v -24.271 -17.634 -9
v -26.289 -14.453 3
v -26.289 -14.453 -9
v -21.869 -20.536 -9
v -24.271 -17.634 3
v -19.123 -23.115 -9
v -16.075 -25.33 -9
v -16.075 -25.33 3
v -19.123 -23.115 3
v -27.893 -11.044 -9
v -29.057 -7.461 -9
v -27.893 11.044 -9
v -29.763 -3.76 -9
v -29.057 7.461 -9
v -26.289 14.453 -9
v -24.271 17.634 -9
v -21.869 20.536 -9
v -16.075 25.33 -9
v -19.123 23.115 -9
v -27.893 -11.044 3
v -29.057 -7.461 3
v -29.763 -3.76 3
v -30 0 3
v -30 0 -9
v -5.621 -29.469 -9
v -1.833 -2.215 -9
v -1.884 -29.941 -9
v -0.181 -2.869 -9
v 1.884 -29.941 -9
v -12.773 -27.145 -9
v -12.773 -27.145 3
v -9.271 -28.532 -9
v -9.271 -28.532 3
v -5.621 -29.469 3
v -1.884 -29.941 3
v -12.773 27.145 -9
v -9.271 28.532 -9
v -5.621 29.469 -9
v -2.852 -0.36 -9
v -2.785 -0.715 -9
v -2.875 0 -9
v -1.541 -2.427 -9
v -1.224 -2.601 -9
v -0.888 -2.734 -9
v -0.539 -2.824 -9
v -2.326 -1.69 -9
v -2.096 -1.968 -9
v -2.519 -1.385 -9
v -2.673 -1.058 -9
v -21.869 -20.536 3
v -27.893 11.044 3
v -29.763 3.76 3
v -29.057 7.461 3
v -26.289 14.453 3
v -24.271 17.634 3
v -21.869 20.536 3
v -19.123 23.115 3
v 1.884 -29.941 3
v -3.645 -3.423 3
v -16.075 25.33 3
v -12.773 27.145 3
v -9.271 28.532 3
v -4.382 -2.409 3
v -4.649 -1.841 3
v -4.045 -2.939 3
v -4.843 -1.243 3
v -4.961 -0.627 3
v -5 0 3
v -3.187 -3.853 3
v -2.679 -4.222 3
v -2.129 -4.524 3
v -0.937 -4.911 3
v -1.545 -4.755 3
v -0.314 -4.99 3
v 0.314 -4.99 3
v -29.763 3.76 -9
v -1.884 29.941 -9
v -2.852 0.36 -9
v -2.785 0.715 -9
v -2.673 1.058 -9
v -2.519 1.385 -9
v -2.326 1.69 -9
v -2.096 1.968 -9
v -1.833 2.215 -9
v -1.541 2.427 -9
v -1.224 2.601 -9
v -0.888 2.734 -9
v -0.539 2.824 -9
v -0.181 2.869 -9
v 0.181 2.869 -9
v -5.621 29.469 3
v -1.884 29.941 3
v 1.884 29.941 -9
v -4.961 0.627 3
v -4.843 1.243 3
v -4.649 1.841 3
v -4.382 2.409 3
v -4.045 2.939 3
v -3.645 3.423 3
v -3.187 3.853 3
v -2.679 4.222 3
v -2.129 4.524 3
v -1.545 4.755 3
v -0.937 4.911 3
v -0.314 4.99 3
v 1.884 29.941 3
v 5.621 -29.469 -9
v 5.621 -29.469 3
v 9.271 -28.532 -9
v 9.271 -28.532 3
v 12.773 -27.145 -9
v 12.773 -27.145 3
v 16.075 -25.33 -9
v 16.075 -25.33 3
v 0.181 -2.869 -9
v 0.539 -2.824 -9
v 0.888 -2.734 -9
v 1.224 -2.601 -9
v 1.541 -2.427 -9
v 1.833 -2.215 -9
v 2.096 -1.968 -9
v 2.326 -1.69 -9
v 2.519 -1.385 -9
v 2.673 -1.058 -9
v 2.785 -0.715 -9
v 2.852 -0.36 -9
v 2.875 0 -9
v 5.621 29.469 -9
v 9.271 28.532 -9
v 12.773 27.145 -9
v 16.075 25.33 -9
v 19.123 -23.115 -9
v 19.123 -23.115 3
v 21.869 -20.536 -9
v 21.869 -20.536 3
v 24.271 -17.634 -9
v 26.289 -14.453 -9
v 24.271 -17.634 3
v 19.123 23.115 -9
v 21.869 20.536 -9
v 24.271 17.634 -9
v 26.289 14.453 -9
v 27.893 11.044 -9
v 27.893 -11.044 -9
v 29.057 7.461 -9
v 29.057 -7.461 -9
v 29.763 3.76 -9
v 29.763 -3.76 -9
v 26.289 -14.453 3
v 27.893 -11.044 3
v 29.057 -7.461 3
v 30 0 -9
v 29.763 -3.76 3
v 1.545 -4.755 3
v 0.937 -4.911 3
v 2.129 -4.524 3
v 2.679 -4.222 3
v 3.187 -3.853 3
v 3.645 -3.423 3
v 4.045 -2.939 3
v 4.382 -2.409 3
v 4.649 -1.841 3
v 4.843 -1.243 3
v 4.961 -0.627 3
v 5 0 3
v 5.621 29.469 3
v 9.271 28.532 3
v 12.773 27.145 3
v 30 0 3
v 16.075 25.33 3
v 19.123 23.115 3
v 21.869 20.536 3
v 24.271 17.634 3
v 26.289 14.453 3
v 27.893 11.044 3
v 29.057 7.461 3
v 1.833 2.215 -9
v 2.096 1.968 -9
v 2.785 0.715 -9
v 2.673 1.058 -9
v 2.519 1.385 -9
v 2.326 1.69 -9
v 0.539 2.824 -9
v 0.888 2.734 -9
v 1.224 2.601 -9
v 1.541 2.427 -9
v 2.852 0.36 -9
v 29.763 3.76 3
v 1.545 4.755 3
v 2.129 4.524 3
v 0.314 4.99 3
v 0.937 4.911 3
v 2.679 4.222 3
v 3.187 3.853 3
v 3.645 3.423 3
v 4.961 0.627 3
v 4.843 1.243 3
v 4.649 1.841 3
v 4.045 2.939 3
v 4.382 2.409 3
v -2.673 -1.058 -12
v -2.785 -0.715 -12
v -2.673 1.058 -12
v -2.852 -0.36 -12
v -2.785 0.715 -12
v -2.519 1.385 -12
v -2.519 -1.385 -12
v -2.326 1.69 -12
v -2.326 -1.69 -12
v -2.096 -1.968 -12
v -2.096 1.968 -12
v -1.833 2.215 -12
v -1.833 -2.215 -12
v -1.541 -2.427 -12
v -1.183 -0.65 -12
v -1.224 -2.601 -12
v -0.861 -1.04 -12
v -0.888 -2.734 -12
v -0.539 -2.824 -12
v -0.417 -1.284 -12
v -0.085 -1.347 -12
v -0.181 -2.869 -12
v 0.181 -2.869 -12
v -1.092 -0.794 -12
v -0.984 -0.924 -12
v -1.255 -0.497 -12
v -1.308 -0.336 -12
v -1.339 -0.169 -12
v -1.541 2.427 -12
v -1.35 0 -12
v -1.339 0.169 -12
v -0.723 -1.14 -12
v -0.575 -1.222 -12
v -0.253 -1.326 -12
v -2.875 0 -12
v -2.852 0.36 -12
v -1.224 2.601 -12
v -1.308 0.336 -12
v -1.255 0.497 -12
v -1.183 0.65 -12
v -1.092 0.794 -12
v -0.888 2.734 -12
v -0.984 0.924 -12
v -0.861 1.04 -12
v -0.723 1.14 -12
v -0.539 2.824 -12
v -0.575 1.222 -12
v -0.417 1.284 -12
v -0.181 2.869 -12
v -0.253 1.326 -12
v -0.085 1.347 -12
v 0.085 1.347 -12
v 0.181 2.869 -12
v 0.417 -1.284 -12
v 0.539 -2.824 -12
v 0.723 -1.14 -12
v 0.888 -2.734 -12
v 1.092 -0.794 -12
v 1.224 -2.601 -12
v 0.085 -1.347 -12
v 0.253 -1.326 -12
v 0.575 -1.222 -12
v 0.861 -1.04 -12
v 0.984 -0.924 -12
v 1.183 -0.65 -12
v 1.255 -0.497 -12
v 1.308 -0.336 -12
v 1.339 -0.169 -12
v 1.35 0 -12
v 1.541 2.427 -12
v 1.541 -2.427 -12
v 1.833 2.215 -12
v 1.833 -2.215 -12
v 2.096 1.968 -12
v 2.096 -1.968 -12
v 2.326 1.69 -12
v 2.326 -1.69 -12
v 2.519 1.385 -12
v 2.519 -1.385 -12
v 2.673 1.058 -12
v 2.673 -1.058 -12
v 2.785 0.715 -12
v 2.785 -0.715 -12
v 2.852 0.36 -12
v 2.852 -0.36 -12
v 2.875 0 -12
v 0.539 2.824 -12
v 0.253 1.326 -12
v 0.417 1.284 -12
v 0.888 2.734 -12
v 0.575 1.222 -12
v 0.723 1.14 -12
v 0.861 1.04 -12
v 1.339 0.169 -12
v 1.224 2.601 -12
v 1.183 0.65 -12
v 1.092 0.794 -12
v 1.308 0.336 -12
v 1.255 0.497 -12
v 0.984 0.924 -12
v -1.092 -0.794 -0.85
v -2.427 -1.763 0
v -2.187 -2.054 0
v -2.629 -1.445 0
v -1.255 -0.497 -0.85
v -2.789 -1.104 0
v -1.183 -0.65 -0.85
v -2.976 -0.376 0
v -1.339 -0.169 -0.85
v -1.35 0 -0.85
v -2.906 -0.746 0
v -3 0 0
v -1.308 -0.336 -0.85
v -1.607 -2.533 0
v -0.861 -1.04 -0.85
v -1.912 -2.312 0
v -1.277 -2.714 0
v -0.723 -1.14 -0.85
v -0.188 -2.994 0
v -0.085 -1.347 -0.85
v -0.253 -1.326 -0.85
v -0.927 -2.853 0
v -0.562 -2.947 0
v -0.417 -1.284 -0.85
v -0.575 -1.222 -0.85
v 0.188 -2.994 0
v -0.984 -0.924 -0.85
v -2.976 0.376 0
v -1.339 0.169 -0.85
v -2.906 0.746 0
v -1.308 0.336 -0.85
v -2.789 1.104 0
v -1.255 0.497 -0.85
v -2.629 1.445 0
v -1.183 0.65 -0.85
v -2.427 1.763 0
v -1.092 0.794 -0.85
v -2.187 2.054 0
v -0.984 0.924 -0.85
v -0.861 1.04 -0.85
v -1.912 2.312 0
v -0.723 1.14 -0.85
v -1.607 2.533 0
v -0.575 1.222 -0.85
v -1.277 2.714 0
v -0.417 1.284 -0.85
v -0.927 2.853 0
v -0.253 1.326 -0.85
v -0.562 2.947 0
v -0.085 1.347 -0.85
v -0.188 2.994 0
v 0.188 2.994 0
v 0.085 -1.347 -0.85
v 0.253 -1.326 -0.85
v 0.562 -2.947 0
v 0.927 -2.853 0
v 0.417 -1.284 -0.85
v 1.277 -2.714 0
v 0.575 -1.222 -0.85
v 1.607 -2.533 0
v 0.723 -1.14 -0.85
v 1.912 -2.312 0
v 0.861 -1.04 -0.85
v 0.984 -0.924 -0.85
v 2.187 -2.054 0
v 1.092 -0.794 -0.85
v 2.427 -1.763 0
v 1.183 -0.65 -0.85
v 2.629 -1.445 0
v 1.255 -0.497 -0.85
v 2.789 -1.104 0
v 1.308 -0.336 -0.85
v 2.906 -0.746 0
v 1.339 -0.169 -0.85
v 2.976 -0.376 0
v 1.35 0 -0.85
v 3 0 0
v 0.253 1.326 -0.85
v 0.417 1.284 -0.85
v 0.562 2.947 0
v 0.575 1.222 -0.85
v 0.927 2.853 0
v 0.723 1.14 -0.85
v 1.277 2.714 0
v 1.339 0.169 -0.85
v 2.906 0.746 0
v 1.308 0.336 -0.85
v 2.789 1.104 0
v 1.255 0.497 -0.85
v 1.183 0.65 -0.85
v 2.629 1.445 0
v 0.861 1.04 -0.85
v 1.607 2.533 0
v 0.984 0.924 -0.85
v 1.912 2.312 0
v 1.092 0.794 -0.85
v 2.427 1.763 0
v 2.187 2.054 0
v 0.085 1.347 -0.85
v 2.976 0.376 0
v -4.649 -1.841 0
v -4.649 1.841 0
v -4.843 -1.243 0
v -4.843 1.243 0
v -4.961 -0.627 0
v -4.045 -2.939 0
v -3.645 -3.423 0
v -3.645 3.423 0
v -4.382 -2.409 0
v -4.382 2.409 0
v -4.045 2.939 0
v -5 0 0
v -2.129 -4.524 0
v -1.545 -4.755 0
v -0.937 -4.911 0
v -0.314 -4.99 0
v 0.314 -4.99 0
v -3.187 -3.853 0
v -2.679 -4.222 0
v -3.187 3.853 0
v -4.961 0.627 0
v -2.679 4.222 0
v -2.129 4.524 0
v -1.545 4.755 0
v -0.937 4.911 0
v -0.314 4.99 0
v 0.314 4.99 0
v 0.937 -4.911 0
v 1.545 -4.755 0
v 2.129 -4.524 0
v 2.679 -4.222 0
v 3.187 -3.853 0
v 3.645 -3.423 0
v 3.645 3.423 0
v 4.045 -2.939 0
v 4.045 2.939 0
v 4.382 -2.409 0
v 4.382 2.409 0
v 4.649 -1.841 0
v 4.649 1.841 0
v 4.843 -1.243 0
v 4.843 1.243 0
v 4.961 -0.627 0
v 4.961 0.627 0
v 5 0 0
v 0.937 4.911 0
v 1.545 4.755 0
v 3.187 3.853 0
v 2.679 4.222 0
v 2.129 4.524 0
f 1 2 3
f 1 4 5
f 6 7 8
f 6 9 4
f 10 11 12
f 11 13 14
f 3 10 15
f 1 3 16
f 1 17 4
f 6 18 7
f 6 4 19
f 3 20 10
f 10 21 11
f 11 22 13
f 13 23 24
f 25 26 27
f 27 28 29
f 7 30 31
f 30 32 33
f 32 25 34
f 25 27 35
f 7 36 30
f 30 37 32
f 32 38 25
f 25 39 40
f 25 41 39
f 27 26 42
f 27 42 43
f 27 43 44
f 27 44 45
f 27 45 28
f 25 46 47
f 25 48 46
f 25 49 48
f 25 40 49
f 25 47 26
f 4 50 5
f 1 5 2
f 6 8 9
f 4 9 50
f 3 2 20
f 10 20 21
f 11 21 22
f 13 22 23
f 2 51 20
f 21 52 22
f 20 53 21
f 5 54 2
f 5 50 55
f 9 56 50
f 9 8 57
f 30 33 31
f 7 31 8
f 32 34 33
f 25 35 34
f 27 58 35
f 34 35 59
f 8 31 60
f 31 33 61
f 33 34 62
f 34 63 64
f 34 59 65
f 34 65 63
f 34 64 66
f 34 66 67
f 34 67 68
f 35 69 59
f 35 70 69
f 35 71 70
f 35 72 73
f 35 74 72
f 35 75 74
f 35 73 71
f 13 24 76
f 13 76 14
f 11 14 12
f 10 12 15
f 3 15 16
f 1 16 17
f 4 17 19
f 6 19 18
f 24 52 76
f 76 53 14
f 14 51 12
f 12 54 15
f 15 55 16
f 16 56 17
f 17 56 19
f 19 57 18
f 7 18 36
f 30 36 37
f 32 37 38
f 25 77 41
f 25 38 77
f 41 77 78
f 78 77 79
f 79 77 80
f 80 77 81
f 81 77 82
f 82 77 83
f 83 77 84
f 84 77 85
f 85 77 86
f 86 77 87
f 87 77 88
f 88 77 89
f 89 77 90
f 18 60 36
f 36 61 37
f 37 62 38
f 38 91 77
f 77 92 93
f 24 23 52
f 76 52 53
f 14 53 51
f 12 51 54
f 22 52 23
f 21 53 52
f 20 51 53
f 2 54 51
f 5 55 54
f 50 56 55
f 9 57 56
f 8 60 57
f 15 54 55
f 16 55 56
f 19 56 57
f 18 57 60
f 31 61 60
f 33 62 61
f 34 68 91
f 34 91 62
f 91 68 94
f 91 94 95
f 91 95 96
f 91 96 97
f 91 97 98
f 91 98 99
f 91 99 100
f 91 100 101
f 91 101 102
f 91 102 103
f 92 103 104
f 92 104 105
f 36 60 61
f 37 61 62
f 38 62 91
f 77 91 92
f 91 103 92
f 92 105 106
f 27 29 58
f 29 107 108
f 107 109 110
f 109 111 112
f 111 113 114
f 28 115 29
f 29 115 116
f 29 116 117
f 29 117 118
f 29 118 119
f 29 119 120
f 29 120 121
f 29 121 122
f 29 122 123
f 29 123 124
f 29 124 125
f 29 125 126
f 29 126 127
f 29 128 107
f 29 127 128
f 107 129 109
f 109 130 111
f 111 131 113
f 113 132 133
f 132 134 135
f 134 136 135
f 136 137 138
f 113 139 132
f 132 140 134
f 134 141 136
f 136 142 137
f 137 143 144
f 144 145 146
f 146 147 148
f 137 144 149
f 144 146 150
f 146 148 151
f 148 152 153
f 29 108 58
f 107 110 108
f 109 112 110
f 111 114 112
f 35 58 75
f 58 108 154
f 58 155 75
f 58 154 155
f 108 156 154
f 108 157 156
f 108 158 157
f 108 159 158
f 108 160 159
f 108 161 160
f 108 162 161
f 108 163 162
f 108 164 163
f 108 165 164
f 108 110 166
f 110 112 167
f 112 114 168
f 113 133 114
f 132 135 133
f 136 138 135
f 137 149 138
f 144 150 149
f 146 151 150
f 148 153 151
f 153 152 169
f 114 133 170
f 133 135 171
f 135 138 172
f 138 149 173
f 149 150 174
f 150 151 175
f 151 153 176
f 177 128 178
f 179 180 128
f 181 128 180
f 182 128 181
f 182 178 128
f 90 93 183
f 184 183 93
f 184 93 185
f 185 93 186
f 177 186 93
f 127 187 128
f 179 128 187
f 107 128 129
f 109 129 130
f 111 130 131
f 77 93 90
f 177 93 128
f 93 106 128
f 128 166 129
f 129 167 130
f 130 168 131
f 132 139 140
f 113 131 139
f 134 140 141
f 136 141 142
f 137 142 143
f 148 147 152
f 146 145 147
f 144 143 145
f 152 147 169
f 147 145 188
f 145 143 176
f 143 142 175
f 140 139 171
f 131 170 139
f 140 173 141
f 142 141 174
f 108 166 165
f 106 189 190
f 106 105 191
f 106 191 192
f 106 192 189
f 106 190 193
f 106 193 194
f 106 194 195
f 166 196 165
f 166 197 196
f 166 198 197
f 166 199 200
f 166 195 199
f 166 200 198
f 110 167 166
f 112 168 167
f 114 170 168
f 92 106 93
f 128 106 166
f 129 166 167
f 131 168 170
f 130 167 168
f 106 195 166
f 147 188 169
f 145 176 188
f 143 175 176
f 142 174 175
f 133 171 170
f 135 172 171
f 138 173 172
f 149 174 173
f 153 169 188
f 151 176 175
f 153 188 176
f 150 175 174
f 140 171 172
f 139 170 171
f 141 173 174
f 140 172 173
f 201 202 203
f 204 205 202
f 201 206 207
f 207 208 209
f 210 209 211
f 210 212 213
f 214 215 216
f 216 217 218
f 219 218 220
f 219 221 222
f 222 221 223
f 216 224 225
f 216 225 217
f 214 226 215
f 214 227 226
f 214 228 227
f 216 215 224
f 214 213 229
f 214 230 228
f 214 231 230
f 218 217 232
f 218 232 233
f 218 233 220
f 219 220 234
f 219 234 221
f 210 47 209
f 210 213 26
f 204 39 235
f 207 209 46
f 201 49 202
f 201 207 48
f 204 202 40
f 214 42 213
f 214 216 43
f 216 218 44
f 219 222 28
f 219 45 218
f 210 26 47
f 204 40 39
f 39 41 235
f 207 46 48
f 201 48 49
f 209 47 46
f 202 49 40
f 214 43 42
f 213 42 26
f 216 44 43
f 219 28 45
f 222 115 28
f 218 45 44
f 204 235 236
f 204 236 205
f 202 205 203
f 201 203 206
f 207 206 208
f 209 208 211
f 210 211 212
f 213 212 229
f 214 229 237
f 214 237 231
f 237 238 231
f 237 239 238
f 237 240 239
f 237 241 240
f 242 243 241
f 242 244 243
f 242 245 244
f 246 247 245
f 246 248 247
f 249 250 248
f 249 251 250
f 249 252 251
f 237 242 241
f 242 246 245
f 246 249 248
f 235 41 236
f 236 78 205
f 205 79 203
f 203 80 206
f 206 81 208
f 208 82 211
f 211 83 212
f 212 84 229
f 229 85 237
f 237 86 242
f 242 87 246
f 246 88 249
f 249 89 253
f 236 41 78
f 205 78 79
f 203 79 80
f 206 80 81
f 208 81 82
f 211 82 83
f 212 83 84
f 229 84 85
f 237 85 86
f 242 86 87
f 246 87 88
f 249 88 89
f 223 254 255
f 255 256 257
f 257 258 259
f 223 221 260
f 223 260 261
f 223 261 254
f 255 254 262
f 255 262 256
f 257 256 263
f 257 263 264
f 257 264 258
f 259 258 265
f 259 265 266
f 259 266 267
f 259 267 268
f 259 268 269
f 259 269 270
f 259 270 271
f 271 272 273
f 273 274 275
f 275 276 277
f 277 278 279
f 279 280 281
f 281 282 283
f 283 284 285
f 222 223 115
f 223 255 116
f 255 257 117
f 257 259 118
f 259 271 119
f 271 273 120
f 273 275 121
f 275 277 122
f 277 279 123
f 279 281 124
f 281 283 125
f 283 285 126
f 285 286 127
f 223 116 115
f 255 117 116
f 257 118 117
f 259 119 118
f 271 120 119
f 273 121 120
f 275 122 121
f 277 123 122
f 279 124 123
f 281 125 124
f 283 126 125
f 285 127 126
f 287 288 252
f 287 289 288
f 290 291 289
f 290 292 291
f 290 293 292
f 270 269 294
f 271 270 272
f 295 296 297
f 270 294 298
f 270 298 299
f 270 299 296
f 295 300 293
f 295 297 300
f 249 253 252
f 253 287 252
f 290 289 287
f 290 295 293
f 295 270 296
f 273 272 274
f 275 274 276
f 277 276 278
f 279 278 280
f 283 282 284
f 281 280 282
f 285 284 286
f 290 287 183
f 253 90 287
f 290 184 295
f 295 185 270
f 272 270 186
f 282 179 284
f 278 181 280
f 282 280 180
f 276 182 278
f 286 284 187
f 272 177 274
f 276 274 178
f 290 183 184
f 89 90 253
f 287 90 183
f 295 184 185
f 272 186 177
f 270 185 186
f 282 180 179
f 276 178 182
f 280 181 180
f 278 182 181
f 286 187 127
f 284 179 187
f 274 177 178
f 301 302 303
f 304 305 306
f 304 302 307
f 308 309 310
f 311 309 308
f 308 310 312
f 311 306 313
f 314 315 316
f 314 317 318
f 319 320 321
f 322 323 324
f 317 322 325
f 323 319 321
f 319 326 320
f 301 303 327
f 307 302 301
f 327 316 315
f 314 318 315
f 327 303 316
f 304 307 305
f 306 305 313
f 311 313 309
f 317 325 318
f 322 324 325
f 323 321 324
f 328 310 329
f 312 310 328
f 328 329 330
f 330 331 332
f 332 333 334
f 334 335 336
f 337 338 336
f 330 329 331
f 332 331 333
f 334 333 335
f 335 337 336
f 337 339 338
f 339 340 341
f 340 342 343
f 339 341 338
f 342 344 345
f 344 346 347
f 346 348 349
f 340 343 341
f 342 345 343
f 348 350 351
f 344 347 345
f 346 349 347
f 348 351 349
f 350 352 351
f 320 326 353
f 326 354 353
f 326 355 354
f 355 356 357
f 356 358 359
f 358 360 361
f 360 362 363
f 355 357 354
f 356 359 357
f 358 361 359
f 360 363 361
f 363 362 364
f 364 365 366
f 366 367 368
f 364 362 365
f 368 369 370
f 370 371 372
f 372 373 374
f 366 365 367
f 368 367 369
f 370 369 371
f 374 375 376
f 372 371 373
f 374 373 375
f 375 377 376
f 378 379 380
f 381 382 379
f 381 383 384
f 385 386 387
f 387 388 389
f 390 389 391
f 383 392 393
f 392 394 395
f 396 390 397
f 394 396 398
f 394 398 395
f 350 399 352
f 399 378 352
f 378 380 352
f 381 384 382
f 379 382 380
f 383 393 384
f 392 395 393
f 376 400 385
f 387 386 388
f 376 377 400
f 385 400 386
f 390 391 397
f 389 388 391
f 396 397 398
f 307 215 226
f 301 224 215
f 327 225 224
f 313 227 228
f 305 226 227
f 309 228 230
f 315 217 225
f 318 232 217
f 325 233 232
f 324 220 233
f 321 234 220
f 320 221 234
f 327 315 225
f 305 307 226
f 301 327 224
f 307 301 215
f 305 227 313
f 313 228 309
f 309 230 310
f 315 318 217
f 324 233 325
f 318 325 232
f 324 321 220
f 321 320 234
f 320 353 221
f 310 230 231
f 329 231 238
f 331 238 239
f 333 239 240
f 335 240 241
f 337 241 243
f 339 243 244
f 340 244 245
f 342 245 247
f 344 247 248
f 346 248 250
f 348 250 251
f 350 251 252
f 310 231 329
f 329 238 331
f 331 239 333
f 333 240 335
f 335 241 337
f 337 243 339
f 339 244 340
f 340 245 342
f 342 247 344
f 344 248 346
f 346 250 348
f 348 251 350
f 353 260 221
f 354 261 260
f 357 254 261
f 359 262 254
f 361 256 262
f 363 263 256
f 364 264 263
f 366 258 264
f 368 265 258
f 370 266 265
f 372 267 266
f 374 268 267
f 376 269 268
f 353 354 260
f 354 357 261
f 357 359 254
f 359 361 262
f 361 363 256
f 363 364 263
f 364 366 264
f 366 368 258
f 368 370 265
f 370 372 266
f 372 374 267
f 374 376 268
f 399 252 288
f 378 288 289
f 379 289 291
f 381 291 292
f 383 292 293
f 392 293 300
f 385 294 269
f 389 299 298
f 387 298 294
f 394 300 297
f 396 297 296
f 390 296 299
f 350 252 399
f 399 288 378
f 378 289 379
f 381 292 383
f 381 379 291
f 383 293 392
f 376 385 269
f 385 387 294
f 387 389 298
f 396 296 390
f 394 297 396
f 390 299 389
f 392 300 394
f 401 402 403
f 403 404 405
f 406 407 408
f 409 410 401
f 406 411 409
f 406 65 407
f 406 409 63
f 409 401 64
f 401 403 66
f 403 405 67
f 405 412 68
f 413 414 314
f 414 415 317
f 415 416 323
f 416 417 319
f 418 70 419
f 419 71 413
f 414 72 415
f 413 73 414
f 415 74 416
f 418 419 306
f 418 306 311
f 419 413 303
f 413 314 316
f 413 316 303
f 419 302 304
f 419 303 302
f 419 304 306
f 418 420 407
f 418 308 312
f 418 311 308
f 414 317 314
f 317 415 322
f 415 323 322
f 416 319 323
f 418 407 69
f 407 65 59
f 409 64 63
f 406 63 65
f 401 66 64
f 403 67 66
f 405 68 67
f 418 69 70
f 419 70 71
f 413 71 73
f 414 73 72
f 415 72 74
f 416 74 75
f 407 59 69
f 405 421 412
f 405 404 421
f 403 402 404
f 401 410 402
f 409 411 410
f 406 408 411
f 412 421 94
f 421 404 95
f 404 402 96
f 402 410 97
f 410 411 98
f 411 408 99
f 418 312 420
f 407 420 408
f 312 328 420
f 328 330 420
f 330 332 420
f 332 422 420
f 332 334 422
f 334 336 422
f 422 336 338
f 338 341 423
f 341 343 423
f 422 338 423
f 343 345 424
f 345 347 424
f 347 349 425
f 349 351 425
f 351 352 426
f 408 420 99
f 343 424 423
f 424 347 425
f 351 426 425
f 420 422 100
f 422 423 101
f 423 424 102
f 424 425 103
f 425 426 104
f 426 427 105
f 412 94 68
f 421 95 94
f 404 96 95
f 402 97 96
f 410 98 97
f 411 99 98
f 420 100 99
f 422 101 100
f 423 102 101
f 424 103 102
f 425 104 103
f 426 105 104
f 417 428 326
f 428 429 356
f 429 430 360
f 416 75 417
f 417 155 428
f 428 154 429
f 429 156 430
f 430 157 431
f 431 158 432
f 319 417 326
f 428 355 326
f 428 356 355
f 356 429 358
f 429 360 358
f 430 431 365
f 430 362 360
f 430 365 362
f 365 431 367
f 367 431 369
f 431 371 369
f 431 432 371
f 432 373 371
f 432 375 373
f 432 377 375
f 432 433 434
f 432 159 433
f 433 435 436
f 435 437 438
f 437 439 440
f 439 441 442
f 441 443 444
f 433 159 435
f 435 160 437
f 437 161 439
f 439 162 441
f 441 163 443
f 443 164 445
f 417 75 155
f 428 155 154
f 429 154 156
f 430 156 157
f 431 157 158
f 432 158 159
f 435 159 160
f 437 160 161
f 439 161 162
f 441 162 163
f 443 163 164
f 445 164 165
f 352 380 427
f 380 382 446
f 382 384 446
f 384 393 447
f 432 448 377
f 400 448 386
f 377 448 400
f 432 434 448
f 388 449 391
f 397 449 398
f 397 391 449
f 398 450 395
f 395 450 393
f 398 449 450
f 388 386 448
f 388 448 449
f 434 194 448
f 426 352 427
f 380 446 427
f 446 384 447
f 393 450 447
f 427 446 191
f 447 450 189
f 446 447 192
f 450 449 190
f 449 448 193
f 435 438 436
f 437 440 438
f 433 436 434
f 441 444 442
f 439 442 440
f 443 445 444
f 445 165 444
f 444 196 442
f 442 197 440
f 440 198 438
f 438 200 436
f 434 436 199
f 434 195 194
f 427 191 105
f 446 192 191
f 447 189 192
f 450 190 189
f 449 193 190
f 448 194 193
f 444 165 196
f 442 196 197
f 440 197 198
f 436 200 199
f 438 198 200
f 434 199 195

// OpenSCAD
$fn = 50;

difference() {
	union() {
		translate(v = [0, 0, -9.0]) {
			cylinder(h = 12, r = 30.0);
		}
		#translate(v = [0, 0, -12.0]) {
			cylinder(h = 12, r = 2.875);
		}
	}
	union() {
		translate(v = [0, 0, 0]) {
			rotate(a = [0, 0, 0]) {
				difference() {
					union() {
						translate(v = [0, 0, -12.0]) {
							cylinder(h = 12, r = 1.0);
						}
						translate(v = [0, 0, -0.85]) {
							cylinder(h = 0.85, r1 = 1.35, r2 = 3.0);
						}
						translate(v = [0, 0, -12.0]) {
							cylinder(h = 12, r = 1.35);
						}
						translate(v = [0, 0, -12.0]) {
							cylinder(h = 12, r = 1.0);
						}
					}
					union();
				}
			}
		}
		#cylinder(h = 3, r = 5.0);
	}
}
